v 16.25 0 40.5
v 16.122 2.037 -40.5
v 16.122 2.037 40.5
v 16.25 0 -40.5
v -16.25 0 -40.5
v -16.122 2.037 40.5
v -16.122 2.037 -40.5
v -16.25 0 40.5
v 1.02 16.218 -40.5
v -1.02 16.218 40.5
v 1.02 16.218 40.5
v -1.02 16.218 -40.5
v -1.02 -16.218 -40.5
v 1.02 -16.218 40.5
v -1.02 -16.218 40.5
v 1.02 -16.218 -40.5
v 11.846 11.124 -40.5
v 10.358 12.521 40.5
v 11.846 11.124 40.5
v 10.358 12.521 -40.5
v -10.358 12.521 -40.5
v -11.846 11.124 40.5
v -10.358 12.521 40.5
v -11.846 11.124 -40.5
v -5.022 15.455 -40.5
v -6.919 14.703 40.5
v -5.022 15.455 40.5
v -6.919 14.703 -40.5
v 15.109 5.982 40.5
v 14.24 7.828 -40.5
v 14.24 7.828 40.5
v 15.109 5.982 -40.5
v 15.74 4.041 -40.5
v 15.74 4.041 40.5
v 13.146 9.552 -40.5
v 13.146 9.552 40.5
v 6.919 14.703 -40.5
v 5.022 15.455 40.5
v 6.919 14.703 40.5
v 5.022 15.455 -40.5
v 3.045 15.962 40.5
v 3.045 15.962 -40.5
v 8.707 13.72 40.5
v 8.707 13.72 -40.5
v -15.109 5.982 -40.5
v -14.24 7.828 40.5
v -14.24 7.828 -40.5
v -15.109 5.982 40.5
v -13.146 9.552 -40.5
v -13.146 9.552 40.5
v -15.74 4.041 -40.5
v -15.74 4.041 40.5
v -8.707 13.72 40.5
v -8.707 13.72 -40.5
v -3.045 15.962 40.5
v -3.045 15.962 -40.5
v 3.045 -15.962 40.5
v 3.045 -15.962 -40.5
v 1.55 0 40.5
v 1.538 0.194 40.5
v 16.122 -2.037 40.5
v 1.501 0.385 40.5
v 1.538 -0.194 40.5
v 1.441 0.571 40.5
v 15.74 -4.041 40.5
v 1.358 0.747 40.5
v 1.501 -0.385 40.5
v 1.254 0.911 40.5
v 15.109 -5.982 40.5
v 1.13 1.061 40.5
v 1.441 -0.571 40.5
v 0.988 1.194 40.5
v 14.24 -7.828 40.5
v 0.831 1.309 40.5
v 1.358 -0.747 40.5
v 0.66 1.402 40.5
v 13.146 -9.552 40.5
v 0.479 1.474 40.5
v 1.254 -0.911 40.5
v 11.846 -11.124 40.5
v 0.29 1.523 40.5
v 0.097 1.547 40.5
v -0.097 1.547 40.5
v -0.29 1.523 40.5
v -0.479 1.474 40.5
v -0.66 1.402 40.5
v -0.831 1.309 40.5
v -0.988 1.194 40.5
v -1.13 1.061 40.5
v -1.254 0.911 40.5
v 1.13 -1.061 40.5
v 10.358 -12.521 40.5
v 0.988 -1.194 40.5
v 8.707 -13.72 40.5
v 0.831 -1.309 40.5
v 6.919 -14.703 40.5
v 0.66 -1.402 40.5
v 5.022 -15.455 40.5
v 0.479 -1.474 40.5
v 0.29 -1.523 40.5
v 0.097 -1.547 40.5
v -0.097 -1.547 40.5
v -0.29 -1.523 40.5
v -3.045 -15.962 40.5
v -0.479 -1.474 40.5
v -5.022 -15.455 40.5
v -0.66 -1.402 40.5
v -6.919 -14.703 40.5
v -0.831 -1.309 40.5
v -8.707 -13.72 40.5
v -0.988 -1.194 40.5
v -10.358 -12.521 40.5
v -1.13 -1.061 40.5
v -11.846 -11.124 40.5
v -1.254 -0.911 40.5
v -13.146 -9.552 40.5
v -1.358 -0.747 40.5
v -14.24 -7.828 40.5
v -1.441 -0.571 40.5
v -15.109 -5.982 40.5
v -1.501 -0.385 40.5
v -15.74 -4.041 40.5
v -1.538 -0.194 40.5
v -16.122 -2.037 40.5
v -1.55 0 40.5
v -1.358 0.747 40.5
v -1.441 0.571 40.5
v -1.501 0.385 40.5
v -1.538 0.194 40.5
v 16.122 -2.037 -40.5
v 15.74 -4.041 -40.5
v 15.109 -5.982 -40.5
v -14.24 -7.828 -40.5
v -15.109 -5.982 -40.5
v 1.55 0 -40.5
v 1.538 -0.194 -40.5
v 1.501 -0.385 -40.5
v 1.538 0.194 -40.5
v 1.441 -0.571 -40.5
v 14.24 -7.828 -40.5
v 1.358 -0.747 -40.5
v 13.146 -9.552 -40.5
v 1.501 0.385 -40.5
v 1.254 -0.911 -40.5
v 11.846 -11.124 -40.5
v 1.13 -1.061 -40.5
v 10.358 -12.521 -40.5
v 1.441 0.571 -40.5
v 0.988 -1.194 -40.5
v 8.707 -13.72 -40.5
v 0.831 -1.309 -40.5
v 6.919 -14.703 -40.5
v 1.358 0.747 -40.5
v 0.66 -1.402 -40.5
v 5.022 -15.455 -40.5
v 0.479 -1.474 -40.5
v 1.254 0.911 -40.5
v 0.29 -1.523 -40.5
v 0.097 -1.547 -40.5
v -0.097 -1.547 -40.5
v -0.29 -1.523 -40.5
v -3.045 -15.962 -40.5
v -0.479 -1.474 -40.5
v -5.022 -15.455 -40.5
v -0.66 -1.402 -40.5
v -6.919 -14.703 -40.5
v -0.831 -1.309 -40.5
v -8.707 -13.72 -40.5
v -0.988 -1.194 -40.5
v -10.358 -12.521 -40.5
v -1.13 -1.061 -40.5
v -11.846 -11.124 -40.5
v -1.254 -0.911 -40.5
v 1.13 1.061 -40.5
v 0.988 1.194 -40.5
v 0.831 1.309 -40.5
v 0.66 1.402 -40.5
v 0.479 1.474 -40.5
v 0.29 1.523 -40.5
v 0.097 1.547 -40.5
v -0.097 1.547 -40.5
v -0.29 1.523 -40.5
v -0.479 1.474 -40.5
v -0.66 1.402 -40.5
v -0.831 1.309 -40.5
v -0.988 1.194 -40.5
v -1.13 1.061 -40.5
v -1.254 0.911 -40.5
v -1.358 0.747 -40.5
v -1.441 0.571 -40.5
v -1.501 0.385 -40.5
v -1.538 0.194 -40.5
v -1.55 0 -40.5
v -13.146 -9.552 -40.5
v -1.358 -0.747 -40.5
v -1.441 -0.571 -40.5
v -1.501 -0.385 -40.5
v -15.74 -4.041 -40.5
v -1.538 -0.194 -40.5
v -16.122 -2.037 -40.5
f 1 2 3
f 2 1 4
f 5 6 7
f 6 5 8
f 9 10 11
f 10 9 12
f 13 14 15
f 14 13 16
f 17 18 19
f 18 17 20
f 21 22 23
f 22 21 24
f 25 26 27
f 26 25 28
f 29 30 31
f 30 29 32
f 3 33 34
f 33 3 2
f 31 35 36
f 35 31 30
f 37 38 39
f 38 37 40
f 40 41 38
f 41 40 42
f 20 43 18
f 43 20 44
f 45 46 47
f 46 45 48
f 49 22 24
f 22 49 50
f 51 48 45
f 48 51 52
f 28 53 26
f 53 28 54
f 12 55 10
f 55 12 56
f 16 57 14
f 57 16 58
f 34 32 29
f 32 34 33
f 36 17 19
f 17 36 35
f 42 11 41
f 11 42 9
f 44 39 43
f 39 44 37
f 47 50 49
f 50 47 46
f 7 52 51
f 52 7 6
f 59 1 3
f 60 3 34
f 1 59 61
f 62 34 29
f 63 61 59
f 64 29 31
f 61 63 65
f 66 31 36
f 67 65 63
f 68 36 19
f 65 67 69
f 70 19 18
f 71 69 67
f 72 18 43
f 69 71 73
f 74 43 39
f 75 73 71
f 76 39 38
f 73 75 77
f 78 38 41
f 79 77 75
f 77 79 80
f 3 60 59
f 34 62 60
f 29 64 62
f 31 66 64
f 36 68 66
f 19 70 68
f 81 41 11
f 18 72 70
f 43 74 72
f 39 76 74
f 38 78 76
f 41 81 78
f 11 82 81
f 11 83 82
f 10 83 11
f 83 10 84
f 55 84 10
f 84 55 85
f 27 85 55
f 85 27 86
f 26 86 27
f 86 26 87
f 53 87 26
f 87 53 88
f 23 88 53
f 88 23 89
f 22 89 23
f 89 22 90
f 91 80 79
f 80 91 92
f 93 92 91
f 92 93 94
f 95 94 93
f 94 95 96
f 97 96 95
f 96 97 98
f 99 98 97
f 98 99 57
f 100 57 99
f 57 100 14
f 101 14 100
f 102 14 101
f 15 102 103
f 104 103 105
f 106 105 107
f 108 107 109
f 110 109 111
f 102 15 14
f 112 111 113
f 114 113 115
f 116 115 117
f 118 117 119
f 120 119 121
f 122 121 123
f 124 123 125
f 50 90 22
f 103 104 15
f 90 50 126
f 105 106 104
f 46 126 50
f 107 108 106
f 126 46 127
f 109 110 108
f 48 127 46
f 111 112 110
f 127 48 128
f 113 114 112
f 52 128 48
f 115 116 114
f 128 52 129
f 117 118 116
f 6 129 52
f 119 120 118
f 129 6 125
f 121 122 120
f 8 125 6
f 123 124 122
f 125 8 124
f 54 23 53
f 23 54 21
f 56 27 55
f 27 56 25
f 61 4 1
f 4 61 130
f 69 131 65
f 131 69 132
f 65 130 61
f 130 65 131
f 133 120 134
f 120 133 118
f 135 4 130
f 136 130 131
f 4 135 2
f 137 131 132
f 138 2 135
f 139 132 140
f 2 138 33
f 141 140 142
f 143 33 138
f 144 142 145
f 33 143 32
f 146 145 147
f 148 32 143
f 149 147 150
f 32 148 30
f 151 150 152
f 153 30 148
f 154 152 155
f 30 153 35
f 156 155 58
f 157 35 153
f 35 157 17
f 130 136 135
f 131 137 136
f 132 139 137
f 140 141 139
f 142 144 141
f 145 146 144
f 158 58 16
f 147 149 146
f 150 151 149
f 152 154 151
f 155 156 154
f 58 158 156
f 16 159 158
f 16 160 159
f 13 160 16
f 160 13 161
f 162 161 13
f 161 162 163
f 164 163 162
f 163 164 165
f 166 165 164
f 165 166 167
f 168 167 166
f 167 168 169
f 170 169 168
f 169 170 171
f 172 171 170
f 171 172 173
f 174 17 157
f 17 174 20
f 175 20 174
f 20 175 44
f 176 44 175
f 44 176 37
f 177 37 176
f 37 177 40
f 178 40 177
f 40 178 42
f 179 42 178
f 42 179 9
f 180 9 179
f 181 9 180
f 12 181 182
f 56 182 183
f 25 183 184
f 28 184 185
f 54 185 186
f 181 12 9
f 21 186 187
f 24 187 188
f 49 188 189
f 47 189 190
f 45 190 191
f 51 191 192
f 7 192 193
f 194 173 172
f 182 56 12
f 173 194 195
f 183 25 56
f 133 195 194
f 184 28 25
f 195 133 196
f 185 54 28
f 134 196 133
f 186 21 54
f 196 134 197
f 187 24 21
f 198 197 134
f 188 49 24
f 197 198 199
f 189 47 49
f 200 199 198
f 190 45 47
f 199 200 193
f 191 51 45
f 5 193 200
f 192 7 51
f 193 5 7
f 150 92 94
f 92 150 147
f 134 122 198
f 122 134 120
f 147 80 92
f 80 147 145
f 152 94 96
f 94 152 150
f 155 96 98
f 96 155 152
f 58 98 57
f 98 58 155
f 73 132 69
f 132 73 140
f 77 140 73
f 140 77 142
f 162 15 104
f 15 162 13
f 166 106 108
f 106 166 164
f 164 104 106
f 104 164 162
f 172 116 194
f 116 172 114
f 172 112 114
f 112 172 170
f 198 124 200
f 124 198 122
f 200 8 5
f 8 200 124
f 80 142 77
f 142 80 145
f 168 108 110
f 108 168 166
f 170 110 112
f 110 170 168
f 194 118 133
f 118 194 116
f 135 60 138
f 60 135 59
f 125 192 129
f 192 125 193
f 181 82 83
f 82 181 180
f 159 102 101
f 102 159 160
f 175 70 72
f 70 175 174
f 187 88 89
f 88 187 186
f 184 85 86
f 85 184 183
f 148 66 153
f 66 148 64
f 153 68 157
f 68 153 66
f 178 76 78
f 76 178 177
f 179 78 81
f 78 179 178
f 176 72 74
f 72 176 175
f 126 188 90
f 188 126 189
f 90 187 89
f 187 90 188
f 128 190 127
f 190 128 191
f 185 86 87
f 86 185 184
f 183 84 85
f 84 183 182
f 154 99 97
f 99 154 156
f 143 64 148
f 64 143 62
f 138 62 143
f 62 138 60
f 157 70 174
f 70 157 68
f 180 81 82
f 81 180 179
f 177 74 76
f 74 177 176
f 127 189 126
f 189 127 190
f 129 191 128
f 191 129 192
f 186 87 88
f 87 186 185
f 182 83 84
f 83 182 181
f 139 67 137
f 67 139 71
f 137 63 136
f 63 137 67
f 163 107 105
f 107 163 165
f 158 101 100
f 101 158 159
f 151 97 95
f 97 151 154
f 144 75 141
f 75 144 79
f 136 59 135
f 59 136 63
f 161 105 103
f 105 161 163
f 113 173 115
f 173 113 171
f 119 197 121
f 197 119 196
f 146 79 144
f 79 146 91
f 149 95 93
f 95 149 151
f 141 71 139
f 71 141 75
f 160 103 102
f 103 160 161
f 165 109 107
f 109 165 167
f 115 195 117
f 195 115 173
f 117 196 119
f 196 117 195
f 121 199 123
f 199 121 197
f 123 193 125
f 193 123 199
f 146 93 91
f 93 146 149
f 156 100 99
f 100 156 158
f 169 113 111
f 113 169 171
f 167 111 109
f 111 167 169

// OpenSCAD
$fn = 50;


difference() {
	union() {
		translate(v = [0, 0, -40.5000000000]) {
			cylinder(h = 81, r = 16.2500000000);
		}
	}
	union() {
		translate(v = [0, 0, -100.0000000000]) {
			cylinder(h = 200, r = 1.5500000000);
		}
	}
}
